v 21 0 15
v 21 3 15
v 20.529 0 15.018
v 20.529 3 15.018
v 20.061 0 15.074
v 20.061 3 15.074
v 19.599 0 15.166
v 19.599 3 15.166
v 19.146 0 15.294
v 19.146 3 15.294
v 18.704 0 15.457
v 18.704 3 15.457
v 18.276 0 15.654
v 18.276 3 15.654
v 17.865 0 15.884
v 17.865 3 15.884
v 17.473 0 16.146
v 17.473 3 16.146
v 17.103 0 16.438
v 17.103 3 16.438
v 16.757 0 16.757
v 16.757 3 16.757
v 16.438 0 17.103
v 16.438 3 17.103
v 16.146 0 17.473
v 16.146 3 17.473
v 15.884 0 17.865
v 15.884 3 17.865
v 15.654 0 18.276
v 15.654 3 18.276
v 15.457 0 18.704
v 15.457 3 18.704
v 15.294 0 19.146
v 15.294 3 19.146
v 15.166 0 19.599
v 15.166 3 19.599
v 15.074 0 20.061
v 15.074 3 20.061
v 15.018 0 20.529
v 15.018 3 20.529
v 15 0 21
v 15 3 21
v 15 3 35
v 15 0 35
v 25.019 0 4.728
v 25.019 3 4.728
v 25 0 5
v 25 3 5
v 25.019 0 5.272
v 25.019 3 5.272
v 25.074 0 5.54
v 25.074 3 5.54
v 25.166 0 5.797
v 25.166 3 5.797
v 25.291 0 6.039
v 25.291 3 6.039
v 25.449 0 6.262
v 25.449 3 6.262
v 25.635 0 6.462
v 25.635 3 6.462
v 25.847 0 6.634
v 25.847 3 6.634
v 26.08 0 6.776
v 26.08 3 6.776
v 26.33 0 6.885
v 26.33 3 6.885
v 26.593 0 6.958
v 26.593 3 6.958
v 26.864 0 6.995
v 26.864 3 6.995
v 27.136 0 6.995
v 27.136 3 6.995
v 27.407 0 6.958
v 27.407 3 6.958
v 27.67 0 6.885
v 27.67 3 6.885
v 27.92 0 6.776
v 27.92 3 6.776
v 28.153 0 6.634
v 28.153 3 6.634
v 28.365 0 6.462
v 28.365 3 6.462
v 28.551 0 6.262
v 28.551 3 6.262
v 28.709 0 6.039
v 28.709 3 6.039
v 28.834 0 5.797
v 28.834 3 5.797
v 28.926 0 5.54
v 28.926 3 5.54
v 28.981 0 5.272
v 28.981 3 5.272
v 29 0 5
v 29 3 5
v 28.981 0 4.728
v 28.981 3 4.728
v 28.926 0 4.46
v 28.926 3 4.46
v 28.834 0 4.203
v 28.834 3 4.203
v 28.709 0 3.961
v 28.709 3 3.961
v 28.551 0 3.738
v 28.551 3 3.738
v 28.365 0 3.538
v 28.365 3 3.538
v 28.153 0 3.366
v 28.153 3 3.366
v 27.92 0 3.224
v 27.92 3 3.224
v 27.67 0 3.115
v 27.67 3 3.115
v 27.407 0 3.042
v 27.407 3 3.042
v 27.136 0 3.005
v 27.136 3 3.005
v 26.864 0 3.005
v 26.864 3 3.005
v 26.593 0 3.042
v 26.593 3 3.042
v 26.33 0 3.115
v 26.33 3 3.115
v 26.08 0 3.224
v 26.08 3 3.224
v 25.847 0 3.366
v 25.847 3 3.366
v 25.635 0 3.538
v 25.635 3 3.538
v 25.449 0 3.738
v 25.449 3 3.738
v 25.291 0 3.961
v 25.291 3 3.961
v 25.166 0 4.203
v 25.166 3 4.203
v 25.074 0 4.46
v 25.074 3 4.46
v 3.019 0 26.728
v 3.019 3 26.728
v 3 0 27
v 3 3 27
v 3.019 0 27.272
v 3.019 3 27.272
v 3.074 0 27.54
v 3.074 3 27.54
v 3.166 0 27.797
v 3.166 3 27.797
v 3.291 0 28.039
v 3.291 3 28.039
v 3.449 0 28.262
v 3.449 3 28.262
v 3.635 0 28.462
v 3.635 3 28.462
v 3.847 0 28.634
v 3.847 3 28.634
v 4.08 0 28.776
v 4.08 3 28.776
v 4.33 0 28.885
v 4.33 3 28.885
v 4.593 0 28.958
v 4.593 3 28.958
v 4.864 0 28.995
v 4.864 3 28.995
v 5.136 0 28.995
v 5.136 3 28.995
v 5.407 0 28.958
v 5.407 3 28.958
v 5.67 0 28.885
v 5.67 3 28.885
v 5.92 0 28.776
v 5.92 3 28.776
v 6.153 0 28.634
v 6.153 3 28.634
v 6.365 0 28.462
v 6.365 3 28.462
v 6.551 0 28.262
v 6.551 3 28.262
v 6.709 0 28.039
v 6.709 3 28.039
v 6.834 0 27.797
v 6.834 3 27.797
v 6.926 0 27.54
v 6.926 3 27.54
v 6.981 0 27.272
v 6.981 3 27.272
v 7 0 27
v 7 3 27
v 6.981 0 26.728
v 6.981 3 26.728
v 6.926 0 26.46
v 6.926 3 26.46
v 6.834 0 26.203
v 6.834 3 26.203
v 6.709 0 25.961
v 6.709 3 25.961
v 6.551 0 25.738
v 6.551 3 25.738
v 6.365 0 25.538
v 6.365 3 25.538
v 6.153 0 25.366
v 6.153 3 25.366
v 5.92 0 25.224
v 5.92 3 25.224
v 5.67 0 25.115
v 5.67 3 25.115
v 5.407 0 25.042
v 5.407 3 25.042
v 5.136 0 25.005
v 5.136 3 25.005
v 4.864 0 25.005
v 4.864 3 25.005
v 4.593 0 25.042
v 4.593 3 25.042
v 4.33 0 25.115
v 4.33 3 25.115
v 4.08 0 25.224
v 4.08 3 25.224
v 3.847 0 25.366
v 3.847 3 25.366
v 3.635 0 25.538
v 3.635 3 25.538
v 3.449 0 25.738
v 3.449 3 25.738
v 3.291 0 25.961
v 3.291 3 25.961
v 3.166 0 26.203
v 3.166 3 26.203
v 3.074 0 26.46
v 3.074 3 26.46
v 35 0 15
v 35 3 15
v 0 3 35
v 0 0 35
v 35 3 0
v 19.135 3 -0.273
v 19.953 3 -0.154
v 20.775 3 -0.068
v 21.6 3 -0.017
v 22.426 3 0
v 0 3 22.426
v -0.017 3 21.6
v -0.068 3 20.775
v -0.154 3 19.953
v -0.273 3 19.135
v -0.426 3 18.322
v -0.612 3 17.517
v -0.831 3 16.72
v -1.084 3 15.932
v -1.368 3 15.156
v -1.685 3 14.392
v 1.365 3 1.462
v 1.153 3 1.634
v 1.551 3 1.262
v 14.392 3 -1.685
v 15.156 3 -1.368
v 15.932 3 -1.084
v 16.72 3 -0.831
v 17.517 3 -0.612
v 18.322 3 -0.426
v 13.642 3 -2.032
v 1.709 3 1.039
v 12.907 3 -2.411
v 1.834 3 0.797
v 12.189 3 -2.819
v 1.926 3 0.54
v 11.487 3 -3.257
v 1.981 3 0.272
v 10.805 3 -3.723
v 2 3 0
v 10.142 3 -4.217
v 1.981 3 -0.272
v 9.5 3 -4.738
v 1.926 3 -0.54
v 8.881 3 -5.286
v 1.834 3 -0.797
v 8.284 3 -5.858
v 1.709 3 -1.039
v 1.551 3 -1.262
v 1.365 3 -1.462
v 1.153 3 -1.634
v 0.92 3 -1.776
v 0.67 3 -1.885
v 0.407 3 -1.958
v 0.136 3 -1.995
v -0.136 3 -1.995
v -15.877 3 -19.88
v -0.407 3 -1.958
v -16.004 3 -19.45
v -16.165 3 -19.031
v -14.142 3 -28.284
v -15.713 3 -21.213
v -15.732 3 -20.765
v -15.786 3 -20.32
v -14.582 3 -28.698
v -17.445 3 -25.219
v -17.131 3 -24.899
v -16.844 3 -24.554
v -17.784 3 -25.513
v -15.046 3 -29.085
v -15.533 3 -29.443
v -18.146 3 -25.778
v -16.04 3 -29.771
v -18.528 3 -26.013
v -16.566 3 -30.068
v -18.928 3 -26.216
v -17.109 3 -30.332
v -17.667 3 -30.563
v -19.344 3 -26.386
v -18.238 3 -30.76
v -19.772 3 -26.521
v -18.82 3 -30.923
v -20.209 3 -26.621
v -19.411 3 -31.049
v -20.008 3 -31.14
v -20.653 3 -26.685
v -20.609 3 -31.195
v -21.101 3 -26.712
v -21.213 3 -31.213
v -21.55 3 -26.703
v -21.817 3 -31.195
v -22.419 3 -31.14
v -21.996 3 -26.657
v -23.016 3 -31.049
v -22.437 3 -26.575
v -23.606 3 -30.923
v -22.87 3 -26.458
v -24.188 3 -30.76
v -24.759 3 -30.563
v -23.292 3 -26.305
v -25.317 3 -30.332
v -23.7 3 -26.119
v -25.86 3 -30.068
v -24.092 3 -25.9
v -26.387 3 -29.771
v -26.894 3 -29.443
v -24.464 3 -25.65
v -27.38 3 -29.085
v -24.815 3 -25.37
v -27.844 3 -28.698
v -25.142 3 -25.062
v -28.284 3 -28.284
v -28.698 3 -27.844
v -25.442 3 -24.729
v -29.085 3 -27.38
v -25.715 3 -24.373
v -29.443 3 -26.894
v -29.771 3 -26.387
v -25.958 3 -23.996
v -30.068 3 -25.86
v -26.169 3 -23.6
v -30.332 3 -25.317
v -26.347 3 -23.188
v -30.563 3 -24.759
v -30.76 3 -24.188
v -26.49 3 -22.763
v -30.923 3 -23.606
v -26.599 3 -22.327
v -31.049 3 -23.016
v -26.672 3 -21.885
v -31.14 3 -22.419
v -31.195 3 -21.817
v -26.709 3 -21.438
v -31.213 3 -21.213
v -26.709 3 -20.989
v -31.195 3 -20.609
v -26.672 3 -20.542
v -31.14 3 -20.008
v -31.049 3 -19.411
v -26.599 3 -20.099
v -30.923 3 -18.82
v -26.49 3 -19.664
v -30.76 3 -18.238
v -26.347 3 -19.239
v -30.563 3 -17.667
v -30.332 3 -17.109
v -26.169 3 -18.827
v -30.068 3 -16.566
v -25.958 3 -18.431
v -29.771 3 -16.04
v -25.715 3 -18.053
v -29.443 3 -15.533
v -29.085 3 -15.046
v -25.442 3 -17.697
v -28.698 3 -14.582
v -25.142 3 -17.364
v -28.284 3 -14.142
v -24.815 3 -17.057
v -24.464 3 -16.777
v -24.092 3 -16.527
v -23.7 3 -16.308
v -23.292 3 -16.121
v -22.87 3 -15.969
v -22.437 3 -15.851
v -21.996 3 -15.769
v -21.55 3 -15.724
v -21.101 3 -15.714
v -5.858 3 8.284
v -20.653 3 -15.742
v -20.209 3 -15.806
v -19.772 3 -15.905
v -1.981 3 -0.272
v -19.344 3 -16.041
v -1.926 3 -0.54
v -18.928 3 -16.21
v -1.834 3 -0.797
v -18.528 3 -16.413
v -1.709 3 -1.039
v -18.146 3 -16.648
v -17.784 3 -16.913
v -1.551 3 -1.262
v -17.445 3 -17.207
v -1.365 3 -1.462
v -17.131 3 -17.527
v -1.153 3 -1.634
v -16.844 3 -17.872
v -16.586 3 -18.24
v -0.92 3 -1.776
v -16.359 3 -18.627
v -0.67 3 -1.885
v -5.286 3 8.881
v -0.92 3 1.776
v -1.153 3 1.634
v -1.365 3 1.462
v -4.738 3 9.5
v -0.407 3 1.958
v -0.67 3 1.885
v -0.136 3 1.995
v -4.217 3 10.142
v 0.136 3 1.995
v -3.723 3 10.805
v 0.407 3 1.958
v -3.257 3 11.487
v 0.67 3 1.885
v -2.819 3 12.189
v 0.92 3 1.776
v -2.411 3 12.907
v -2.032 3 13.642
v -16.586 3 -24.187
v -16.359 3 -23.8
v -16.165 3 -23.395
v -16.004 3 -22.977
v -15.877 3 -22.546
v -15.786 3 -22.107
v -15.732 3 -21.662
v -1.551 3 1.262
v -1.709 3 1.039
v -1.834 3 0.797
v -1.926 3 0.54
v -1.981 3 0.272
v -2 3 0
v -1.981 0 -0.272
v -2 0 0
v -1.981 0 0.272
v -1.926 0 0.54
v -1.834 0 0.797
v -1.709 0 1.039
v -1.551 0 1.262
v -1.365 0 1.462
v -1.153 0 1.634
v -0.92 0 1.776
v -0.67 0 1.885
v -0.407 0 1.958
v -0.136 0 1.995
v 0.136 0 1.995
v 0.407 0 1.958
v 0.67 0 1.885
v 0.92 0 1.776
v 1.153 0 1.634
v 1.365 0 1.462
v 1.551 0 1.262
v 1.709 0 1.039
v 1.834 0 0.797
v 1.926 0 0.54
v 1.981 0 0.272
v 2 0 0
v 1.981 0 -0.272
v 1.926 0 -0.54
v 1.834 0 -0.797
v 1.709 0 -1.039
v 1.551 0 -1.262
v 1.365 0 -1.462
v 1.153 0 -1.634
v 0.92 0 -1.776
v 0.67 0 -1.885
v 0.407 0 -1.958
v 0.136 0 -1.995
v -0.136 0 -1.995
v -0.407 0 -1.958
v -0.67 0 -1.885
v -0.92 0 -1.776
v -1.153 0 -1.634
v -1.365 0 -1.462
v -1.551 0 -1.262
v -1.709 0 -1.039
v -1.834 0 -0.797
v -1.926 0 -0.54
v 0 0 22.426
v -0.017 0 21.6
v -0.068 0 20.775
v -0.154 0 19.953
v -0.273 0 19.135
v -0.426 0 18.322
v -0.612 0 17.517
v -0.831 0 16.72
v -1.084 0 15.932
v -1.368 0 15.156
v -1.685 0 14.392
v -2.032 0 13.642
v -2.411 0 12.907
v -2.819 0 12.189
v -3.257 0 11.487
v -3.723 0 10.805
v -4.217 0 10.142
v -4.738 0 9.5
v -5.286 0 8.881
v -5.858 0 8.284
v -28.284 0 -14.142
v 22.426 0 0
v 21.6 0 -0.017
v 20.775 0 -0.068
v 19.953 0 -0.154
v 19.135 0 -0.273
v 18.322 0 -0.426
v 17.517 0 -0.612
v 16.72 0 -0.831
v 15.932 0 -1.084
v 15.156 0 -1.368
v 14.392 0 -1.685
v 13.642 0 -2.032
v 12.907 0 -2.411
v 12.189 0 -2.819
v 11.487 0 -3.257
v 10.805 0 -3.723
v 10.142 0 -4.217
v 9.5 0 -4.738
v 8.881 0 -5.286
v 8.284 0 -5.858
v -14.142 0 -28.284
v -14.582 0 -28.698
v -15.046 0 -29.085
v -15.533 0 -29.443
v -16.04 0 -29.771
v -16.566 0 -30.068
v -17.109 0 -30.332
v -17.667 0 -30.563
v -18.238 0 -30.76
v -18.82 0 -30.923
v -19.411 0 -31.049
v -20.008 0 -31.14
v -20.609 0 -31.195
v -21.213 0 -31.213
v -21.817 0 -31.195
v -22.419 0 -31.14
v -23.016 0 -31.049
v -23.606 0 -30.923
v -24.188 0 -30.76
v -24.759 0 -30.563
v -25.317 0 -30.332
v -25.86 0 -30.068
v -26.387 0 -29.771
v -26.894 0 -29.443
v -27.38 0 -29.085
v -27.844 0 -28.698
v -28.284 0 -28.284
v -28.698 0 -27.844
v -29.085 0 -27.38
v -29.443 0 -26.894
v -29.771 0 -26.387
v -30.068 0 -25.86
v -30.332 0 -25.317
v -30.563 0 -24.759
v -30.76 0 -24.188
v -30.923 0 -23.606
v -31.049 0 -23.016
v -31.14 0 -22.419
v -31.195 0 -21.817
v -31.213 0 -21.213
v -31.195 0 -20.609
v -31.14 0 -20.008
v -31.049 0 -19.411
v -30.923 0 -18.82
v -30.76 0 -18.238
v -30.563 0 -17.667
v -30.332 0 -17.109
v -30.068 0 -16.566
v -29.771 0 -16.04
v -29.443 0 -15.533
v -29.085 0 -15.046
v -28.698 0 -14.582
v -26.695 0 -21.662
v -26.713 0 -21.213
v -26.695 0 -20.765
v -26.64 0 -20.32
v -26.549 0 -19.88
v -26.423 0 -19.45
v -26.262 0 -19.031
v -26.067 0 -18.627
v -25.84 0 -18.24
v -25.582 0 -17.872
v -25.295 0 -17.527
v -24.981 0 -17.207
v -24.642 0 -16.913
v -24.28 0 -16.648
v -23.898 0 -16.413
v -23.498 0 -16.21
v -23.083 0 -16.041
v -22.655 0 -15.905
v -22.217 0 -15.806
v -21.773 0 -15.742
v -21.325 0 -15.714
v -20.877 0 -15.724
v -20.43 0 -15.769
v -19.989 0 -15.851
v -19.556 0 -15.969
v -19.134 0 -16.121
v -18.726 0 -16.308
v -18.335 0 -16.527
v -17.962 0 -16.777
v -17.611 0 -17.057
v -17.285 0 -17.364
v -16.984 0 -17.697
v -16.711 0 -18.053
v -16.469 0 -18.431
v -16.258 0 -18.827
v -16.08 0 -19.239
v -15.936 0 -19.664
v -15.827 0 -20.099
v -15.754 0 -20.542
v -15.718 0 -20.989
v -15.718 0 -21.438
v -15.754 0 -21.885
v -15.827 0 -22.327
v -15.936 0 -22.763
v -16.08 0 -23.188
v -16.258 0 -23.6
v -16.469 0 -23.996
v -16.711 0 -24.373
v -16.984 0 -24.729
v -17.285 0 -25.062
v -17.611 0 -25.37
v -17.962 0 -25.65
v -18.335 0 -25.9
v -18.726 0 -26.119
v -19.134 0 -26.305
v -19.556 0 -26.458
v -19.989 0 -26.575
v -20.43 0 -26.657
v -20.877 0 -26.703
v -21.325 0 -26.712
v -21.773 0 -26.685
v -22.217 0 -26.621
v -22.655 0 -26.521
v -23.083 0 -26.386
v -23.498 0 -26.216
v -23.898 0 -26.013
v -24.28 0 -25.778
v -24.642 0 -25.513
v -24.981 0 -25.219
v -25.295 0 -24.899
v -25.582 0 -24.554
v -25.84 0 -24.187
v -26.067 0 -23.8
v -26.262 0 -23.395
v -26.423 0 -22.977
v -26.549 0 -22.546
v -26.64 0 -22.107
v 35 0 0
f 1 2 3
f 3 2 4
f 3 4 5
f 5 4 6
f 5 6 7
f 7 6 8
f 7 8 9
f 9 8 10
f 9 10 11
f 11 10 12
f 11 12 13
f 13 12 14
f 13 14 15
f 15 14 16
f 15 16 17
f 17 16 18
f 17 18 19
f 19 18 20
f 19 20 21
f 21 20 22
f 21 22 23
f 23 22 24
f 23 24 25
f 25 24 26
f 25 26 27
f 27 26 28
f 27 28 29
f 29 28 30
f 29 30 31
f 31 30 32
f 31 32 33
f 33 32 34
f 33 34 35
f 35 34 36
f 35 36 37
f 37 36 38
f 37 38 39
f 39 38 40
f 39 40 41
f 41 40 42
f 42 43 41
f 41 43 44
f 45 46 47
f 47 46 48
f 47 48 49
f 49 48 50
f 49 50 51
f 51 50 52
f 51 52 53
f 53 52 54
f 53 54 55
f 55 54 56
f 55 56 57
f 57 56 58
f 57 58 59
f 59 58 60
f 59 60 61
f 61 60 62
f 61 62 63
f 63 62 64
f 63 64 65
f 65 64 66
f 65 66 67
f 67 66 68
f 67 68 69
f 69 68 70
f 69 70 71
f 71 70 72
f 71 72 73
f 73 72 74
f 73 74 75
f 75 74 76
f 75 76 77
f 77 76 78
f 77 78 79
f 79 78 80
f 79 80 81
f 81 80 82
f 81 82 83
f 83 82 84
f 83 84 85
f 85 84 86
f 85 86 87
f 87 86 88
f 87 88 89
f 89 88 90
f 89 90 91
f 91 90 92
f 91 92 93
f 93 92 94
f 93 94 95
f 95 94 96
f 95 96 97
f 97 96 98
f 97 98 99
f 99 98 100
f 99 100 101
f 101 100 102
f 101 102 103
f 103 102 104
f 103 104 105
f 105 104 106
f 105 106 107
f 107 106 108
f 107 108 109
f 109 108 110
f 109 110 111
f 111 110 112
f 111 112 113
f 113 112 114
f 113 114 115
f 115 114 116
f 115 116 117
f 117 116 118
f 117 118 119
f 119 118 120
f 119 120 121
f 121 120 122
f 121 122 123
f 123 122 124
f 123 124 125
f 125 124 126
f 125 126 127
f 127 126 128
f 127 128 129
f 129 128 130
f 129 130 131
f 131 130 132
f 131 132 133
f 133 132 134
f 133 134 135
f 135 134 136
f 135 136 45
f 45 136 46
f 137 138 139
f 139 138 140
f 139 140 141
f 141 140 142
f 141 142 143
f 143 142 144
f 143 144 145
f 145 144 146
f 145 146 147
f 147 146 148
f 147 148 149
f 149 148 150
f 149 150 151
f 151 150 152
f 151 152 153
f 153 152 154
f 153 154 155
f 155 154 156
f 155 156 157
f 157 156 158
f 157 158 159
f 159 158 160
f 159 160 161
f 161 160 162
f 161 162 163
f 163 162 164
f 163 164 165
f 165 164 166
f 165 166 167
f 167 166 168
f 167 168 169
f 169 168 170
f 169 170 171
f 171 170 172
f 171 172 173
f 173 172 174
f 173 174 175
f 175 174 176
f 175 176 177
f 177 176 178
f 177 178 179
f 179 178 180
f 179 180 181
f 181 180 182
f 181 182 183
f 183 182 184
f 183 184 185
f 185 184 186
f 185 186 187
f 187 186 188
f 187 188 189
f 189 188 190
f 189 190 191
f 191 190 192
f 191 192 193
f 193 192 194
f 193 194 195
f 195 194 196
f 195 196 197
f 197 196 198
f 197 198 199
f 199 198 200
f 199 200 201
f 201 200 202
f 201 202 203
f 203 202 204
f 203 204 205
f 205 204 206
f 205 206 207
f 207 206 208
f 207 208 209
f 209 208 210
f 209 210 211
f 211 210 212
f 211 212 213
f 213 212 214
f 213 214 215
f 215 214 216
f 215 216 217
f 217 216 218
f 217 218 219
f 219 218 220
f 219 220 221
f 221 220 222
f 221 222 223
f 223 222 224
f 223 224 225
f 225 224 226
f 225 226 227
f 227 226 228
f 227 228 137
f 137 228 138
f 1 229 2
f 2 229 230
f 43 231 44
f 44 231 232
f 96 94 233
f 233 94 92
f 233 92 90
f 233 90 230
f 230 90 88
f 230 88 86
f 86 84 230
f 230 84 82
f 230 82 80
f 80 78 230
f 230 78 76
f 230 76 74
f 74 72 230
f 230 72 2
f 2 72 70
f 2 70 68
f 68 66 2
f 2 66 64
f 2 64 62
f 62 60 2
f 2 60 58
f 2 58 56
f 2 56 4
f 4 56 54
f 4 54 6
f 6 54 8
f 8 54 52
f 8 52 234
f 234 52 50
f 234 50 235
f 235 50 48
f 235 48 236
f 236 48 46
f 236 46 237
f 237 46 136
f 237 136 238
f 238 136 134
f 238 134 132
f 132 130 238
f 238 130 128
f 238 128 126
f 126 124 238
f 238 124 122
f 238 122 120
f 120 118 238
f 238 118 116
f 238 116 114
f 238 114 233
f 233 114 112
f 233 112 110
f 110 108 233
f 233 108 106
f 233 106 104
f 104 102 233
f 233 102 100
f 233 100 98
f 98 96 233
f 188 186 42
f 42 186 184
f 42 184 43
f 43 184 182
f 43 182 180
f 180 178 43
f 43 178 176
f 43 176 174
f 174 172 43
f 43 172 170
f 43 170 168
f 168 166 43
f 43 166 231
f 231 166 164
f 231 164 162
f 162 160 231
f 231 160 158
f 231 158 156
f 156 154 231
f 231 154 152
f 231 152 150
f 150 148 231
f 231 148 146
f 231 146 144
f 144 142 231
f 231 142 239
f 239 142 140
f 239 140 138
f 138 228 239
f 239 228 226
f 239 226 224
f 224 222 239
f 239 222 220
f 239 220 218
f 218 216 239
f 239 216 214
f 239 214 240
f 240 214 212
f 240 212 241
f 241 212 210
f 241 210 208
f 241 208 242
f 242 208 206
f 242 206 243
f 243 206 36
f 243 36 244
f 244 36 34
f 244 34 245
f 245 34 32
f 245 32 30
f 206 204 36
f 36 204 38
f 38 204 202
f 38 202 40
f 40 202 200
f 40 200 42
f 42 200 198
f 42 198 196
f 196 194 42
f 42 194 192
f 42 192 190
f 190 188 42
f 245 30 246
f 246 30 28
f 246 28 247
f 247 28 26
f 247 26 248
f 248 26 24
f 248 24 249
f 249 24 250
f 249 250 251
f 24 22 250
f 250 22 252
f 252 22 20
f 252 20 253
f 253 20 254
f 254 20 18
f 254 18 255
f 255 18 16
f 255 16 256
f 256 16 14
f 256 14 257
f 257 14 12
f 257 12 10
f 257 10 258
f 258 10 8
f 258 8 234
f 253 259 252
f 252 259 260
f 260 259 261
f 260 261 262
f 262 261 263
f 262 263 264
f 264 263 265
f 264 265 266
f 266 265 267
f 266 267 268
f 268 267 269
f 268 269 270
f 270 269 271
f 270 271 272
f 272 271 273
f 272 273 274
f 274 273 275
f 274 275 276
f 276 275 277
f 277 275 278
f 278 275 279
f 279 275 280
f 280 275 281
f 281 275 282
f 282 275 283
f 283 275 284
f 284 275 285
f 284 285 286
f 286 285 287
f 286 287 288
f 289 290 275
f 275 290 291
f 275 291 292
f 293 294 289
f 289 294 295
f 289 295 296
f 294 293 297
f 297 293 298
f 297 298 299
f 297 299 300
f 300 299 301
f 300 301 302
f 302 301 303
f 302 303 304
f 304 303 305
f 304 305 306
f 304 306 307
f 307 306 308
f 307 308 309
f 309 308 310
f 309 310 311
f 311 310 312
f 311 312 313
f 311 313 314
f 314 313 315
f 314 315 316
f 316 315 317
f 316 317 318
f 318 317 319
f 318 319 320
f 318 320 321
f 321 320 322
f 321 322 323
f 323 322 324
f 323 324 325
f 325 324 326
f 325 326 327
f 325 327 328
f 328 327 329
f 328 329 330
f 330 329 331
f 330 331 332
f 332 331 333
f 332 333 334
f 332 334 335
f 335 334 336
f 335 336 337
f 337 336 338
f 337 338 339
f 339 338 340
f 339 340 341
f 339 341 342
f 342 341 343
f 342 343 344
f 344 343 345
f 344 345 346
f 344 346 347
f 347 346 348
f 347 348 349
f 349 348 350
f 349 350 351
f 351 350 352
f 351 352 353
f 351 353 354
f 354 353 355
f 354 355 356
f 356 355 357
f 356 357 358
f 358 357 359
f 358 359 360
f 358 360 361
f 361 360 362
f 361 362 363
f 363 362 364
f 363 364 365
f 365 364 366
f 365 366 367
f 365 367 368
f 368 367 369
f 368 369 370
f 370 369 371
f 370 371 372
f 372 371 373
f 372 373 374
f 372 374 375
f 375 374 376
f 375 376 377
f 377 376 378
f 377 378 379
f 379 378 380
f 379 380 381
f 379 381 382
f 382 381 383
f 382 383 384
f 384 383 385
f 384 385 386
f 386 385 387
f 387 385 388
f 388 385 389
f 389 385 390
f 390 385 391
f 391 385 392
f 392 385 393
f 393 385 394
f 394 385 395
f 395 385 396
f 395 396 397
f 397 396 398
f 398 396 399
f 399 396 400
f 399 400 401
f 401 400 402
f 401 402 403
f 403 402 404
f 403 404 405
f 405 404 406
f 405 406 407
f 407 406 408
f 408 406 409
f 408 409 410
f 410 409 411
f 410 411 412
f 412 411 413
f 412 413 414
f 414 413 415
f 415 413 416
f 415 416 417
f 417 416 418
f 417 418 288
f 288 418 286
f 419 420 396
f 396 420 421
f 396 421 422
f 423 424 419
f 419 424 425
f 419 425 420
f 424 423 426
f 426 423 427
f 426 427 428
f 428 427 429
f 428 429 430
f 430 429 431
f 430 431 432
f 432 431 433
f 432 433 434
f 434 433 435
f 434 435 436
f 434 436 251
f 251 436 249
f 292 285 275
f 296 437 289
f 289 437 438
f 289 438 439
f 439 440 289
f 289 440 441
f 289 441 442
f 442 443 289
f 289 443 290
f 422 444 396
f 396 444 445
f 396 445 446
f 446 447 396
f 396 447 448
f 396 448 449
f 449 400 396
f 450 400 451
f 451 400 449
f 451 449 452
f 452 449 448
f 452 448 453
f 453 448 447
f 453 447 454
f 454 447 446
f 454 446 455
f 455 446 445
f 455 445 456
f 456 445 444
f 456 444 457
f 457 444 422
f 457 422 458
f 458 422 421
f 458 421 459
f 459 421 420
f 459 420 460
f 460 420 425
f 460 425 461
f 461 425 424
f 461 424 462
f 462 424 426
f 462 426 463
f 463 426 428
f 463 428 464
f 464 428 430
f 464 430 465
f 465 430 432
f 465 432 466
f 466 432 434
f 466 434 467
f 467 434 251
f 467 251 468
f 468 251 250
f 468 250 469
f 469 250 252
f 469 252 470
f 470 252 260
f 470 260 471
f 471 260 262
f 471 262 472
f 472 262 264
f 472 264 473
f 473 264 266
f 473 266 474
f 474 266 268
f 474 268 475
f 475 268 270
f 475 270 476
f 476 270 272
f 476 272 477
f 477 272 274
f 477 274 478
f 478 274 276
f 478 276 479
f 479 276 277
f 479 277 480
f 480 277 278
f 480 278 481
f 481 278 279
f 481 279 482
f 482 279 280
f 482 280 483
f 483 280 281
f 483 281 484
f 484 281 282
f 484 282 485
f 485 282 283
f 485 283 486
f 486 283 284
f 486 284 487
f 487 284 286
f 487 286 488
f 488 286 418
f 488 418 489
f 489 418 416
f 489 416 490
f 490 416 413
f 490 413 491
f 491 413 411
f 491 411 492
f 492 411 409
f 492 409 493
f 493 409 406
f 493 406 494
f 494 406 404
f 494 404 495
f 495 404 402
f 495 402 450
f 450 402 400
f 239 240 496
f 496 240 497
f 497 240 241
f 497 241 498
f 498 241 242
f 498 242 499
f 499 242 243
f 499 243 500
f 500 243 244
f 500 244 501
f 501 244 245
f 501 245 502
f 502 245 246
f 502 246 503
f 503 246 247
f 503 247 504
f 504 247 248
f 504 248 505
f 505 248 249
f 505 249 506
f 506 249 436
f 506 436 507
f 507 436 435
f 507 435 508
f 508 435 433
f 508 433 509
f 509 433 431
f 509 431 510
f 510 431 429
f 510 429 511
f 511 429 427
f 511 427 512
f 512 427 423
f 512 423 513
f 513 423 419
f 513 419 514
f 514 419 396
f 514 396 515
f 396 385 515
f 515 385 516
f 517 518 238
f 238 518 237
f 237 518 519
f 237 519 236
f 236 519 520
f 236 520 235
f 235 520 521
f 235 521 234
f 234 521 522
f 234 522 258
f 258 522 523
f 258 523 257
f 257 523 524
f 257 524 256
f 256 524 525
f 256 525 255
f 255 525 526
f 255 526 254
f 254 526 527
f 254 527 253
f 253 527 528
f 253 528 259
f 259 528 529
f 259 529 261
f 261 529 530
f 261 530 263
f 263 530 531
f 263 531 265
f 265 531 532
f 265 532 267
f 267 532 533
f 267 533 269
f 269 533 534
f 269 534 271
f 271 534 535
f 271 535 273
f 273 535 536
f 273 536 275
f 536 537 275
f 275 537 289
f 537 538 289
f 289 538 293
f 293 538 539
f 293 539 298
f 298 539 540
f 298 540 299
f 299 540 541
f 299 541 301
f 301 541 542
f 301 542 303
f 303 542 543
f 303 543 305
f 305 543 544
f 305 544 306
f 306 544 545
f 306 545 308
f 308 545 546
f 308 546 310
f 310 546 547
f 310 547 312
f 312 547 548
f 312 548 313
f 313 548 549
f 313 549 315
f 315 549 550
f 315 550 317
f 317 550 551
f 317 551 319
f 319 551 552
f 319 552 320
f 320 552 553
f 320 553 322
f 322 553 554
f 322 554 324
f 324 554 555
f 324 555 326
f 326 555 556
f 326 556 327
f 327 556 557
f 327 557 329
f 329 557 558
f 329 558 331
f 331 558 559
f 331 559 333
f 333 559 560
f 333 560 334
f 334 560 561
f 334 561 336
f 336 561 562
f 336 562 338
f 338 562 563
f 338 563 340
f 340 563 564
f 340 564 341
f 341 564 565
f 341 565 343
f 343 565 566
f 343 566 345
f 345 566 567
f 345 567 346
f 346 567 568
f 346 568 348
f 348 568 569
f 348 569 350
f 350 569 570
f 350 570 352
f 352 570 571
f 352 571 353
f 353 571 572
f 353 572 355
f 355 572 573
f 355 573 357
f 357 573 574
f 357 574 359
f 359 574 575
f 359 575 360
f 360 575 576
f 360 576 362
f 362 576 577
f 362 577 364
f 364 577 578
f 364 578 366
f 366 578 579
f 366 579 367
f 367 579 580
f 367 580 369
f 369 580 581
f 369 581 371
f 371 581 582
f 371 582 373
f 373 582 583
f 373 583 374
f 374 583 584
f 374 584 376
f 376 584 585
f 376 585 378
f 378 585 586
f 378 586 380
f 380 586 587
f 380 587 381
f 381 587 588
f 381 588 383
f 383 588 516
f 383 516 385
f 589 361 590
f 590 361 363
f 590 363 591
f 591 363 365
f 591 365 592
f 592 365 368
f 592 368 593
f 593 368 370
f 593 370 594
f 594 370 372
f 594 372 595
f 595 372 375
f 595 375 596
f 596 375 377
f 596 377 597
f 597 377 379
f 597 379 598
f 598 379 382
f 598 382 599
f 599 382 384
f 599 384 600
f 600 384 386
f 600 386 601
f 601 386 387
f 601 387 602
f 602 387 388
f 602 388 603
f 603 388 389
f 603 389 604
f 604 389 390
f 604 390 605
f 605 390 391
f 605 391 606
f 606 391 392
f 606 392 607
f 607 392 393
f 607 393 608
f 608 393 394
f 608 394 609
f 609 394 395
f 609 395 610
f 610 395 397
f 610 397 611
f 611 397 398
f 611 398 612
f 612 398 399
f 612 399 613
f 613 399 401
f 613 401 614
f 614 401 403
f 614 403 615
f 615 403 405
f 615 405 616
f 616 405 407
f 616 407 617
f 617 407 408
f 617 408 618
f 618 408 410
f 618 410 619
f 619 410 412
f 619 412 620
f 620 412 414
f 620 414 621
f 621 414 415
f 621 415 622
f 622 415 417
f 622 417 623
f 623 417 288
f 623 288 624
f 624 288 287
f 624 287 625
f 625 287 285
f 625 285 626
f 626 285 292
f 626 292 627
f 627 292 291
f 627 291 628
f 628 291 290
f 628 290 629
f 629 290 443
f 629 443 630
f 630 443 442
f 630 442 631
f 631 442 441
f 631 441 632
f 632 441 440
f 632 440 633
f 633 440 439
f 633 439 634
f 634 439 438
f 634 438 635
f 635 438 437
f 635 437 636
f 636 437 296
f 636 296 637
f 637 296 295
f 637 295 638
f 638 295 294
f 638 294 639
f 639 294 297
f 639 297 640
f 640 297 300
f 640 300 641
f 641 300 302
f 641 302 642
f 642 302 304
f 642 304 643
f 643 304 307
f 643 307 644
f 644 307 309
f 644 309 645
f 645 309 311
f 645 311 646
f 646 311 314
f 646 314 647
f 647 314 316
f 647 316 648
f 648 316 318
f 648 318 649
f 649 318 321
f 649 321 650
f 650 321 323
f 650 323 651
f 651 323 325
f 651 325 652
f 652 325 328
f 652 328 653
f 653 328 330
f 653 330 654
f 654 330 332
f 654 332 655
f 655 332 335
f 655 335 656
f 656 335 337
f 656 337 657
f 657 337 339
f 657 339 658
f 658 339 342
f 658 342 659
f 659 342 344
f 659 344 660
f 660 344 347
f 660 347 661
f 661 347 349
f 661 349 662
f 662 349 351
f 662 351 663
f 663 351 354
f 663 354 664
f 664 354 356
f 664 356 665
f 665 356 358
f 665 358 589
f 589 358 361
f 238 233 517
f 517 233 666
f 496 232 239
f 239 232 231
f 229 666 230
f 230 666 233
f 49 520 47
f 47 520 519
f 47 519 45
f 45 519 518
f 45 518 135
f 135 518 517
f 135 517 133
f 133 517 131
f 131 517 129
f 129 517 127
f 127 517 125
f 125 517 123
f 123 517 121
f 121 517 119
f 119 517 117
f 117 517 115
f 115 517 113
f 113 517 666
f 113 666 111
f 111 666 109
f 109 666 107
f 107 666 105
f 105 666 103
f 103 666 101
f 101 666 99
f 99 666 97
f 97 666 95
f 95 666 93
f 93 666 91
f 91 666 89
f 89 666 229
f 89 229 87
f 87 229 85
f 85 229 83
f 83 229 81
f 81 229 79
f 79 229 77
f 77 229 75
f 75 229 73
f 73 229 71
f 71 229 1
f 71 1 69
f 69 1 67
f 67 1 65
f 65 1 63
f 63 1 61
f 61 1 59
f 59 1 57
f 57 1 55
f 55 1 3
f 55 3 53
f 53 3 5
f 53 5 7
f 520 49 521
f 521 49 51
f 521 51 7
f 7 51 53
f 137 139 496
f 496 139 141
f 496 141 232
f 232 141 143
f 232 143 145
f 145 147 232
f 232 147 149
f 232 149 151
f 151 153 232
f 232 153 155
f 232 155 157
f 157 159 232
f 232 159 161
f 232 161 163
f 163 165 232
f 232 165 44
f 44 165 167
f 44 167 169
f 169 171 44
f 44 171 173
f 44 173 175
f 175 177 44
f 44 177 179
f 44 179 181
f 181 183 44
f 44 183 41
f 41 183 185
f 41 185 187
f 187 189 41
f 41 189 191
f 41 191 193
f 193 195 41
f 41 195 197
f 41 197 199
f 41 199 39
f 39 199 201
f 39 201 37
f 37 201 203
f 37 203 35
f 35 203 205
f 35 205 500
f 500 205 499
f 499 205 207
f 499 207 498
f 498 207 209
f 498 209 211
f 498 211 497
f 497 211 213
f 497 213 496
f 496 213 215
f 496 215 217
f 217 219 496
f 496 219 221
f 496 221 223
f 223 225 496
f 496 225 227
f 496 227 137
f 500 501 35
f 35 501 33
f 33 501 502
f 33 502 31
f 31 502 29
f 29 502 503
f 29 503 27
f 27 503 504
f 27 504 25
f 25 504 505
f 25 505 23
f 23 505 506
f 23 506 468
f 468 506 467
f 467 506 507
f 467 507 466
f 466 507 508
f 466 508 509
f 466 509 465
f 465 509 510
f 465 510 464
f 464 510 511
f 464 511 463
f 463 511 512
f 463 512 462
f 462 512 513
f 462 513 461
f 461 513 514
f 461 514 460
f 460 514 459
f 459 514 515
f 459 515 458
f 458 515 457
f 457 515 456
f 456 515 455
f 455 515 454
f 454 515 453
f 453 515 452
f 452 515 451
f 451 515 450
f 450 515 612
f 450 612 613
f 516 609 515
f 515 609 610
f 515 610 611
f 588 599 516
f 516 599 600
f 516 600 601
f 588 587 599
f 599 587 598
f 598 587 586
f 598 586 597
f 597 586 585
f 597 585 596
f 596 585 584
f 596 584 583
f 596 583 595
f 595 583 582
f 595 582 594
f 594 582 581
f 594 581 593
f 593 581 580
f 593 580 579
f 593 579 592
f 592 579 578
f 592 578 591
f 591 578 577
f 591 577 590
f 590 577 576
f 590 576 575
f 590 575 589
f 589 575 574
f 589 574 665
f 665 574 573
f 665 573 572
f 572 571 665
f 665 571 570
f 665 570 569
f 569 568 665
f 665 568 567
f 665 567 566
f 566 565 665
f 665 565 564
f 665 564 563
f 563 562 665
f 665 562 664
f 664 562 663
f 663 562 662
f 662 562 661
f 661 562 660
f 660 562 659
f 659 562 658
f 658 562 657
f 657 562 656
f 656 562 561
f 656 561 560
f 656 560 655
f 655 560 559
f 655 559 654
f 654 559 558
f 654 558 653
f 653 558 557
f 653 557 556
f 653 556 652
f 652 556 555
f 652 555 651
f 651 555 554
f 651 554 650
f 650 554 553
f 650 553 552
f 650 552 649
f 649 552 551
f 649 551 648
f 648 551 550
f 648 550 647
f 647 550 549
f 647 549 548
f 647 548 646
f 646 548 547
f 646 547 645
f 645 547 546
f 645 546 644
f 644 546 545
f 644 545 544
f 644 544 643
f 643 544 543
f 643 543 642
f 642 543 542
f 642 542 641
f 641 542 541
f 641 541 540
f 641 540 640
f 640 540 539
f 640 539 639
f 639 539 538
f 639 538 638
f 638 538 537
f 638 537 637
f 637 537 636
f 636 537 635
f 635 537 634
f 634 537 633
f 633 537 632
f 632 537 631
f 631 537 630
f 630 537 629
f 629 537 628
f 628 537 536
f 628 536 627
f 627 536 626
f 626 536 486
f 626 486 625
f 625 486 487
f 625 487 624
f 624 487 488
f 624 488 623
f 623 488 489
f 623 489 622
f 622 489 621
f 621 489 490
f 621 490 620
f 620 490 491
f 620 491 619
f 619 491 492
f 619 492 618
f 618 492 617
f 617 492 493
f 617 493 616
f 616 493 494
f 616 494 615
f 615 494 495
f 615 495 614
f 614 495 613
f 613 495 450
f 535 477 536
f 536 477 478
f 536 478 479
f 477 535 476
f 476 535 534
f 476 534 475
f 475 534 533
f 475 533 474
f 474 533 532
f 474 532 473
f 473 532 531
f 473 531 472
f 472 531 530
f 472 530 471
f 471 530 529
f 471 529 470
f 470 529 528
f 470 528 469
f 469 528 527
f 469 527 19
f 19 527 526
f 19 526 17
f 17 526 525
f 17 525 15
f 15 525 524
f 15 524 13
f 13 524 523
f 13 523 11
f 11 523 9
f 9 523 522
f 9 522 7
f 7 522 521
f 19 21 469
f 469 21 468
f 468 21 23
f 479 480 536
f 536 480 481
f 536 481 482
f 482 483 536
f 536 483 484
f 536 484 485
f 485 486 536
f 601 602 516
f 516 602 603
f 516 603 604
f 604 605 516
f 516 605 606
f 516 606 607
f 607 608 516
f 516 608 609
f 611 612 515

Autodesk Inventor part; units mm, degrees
ref_plane "YZ Plane" through (0, 0, 0) normal (1, 0, 0) x (0, 1, 0)
ref_plane "XZ Plane" through (0, 0, 0) normal (0, 1, 0) x (-1, 0, 0)
ref_plane "XY Plane" through (0, 0, 0) normal (0, 0, 1) x (1, 0, 0)
sketch "Sketch23" plane through (0, 0, 0) normal (0, 1, 0) x (-1, 0, 0)
  line L0 (0, -7) -> (0, 42) projected
  line L1 (7, 0) -> (-42, 0) projected
  line L2 (0, 0) -> (-35, 0)
  line L3 (-35, 0) -> (-35, 35)
  line L4 (-35, 35) -> (0, 35)
  line L5 (0, 35) -> (0, 0)
  line L6 (0, 0) -> (-35, 35) construction
  point P0 (0, 0)
  dimension "d213" = 35
  dimension "d214" = 35
extrude "Extrusion14" add sketch "Sketch23" along normal blind 3
sketch "Sketch24" plane through (0, 3, 0) normal (0, 1, 0) x (1, 0, 0)
  line L0 (35, 0) -> (0, 0) projected
  line L1 (0, 0) -> (0, -35) projected
  line L2 (0, -35) -> (35, -35) projected
  line L3 (35, -35) -> (35, 0) projected
  line L4 (-41.7276, 41.7276) -> (35, -35) construction
  line L5 (-35.3553, 21.2132) -> (-21.2132, 35.3553)
  line L6 (-21.2132, 35.3553) -> (14.1421, 0)
  line L7 (35, 0) -> (0, 0) projected
  line L8 (0, -14.1421) -> (-35.3553, 21.2132)
  line L9 (-23.915, -23.915) -> (42.6519, 42.6519) construction
  dimension "d217" = 45
  dimension "d218" = 20
  dimension "d219" = 40
extrude "Extrusion15" add sketch "Sketch24" against normal blind 3 contours L0 L1 L8 L5 L6
sketch "Sketch36" plane through (0, 3, 0) normal (0, 1, 0) x (1, 0, 0)
  line L0 (-35.3553, 21.2132) -> (0, -14.1421) projected
  line L1 (14.1421, 0) -> (-21.2132, 35.3553) projected
  line L2 (-21.2132, 35.3553) -> (-35.3553, 21.2132) projected
  line L3 (-49.4264, 0) -> (49.0711, 0) projected
  line L4 (0, 49.4264) -> (0, -49.0711) projected
  line L5 (35, 0) -> (14.1421, 0) projected
  line L6 (0, -14.1421) -> (0, -35) projected
  line L7 (35, -35) -> (35, 0) projected
  line L8 (0, -35) -> (35, -35) projected
  line L9 (-30.4046, 30.4046) -> (24.5711, -24.5711) construction
  line L10 (14.1421, 0) -> (-21.2132, 35.3553) projected
  point P0 (0, 0)
  point P1 (0, -32)
  point P2 (32, 0)
  point P3 (-21.2132, 21.2132)
  dimension "d343" = 10
  dimension "d344" = 10
hole "Hole17" at (-21.2132, 3, -21.2132) direction (0, -1, 0) diameter 11 end through all
fillet "Fillet15" radius 10 2 edges at (-35.3553, 1.5, -21.2132) (-21.2132, 1.5, -35.3553)
fillet "Fillet18" radius 20 2 edges at (14.1421, 1.5, 0) (0, 1.5, 14.1421)
sketch "Sketch41" plane through (0, 3, 0) normal (0, 1, 0) x (1, 0, 0)
  line L0 (35, 0) -> (22.4264, 0) projected
  arc A0 (8.2843, 5.8579) -> (22.4264, 0) centre (22.4264, 20) ccw projected
  line L1 (8.2843, 5.8579) -> (-14.1421, 28.2843) projected
  arc A1 (-14.1421, 28.2843) -> (-28.2843, 14.1421) centre (-21.2132, 21.2132) ccw projected
  line L2 (-28.2843, 14.1421) -> (-5.8579, -8.2843) projected
  arc A2 (0, -22.4264) -> (-5.8579, -8.2843) centre (-20, -22.4264) ccw projected
  line L3 (0, -22.4264) -> (0, -35) projected
  line L4 (0, -35) -> (35, -35) projected
  line L5 (35, -35) -> (35, 0) projected
  circle A3 centre (-21.2132, 21.2132) radius 5.5 projected
  line L6 (-42.9041, 42.9041) -> (81.0287, -81.0287) construction
  line L7 (8.2843, 5.8579) -> (-14.1421, 28.2843) projected
  line L8 (1.4985, 43.9249) -> (-47.6457, -5.2193) construction
  point P0 (0, 0)
  point P1 (0, 0)
  dimension "d365" = 30
hole "Hole20" at (0, 3, 0) direction (0, -1, 0) diameter 4 end through all
sketch "Sketch42" plane through (0, 3, 0) normal (0, 1, 0) x (1, 0, 0)
  circle A0 centre (0, 0) radius 2 projected
  circle A1 centre (-21.2132, 21.2132) radius 5.5 projected
  arc A2 (-14.1421, 28.2843) -> (-28.2843, 14.1421) centre (-21.2132, 21.2132) ccw projected
  line L0 (-28.2843, 14.1421) -> (-5.8579, -8.2843) projected
  arc A3 (0, -22.4264) -> (-5.8579, -8.2843) centre (-20, -22.4264) ccw projected
  line L1 (0, -22.4264) -> (0, -35) projected
  line L2 (0, -35) -> (35, -35) projected
  line L3 (35, -35) -> (35, 0) projected
  line L4 (35, 0) -> (22.4264, 0) projected
  arc A4 (8.2843, 5.8579) -> (22.4264, 0) centre (22.4264, 20) ccw projected
  line L5 (8.2843, 5.8579) -> (-14.1421, 28.2843) projected
  line L6 (35, -35) -> (15, -35)
  line L7 (15, -35) -> (15, -15)
  line L8 (15, -15) -> (35, -15)
  line L9 (35, -15) -> (35, -35)
  line L10 (35, -35) -> (35, 0) projected
  line L11 (0, -35) -> (35, -35) projected
  point P0 (0, 0)
  dimension "d423" = 15
  dimension "d424" = 15
extrude "Extrusion20" cut sketch "Sketch42" against normal blind 3 contours L3 L2 L7 L8
sketch "Sketch46" plane through (0, 3, 0) normal (0, 1, 0) x (1, 0, 0)
  line L0 (35, 0) -> (22.4264, 0) projected
  line L1 (0, -22.4264) -> (0, -35) projected
  line L2 (35, -15) -> (35, 0) projected
  line L3 (0, -35) -> (15, -35) projected
  point P0 (0, 0)
  point P1 (27, -5)
  point P2 (5, -27)
  dimension "d403" = 5
  dimension "d405" = 5
  dimension "d425" = 8
  dimension "d426" = 8
hole "Hole23" at (27, 3, 5) at (5, 3, 27) direction (0, -1, 0) diameter 4 end through all
fillet "Fillet22" radius 6 1 edges at (15, 1.5, 15)
properties part number "quarter_upper"
